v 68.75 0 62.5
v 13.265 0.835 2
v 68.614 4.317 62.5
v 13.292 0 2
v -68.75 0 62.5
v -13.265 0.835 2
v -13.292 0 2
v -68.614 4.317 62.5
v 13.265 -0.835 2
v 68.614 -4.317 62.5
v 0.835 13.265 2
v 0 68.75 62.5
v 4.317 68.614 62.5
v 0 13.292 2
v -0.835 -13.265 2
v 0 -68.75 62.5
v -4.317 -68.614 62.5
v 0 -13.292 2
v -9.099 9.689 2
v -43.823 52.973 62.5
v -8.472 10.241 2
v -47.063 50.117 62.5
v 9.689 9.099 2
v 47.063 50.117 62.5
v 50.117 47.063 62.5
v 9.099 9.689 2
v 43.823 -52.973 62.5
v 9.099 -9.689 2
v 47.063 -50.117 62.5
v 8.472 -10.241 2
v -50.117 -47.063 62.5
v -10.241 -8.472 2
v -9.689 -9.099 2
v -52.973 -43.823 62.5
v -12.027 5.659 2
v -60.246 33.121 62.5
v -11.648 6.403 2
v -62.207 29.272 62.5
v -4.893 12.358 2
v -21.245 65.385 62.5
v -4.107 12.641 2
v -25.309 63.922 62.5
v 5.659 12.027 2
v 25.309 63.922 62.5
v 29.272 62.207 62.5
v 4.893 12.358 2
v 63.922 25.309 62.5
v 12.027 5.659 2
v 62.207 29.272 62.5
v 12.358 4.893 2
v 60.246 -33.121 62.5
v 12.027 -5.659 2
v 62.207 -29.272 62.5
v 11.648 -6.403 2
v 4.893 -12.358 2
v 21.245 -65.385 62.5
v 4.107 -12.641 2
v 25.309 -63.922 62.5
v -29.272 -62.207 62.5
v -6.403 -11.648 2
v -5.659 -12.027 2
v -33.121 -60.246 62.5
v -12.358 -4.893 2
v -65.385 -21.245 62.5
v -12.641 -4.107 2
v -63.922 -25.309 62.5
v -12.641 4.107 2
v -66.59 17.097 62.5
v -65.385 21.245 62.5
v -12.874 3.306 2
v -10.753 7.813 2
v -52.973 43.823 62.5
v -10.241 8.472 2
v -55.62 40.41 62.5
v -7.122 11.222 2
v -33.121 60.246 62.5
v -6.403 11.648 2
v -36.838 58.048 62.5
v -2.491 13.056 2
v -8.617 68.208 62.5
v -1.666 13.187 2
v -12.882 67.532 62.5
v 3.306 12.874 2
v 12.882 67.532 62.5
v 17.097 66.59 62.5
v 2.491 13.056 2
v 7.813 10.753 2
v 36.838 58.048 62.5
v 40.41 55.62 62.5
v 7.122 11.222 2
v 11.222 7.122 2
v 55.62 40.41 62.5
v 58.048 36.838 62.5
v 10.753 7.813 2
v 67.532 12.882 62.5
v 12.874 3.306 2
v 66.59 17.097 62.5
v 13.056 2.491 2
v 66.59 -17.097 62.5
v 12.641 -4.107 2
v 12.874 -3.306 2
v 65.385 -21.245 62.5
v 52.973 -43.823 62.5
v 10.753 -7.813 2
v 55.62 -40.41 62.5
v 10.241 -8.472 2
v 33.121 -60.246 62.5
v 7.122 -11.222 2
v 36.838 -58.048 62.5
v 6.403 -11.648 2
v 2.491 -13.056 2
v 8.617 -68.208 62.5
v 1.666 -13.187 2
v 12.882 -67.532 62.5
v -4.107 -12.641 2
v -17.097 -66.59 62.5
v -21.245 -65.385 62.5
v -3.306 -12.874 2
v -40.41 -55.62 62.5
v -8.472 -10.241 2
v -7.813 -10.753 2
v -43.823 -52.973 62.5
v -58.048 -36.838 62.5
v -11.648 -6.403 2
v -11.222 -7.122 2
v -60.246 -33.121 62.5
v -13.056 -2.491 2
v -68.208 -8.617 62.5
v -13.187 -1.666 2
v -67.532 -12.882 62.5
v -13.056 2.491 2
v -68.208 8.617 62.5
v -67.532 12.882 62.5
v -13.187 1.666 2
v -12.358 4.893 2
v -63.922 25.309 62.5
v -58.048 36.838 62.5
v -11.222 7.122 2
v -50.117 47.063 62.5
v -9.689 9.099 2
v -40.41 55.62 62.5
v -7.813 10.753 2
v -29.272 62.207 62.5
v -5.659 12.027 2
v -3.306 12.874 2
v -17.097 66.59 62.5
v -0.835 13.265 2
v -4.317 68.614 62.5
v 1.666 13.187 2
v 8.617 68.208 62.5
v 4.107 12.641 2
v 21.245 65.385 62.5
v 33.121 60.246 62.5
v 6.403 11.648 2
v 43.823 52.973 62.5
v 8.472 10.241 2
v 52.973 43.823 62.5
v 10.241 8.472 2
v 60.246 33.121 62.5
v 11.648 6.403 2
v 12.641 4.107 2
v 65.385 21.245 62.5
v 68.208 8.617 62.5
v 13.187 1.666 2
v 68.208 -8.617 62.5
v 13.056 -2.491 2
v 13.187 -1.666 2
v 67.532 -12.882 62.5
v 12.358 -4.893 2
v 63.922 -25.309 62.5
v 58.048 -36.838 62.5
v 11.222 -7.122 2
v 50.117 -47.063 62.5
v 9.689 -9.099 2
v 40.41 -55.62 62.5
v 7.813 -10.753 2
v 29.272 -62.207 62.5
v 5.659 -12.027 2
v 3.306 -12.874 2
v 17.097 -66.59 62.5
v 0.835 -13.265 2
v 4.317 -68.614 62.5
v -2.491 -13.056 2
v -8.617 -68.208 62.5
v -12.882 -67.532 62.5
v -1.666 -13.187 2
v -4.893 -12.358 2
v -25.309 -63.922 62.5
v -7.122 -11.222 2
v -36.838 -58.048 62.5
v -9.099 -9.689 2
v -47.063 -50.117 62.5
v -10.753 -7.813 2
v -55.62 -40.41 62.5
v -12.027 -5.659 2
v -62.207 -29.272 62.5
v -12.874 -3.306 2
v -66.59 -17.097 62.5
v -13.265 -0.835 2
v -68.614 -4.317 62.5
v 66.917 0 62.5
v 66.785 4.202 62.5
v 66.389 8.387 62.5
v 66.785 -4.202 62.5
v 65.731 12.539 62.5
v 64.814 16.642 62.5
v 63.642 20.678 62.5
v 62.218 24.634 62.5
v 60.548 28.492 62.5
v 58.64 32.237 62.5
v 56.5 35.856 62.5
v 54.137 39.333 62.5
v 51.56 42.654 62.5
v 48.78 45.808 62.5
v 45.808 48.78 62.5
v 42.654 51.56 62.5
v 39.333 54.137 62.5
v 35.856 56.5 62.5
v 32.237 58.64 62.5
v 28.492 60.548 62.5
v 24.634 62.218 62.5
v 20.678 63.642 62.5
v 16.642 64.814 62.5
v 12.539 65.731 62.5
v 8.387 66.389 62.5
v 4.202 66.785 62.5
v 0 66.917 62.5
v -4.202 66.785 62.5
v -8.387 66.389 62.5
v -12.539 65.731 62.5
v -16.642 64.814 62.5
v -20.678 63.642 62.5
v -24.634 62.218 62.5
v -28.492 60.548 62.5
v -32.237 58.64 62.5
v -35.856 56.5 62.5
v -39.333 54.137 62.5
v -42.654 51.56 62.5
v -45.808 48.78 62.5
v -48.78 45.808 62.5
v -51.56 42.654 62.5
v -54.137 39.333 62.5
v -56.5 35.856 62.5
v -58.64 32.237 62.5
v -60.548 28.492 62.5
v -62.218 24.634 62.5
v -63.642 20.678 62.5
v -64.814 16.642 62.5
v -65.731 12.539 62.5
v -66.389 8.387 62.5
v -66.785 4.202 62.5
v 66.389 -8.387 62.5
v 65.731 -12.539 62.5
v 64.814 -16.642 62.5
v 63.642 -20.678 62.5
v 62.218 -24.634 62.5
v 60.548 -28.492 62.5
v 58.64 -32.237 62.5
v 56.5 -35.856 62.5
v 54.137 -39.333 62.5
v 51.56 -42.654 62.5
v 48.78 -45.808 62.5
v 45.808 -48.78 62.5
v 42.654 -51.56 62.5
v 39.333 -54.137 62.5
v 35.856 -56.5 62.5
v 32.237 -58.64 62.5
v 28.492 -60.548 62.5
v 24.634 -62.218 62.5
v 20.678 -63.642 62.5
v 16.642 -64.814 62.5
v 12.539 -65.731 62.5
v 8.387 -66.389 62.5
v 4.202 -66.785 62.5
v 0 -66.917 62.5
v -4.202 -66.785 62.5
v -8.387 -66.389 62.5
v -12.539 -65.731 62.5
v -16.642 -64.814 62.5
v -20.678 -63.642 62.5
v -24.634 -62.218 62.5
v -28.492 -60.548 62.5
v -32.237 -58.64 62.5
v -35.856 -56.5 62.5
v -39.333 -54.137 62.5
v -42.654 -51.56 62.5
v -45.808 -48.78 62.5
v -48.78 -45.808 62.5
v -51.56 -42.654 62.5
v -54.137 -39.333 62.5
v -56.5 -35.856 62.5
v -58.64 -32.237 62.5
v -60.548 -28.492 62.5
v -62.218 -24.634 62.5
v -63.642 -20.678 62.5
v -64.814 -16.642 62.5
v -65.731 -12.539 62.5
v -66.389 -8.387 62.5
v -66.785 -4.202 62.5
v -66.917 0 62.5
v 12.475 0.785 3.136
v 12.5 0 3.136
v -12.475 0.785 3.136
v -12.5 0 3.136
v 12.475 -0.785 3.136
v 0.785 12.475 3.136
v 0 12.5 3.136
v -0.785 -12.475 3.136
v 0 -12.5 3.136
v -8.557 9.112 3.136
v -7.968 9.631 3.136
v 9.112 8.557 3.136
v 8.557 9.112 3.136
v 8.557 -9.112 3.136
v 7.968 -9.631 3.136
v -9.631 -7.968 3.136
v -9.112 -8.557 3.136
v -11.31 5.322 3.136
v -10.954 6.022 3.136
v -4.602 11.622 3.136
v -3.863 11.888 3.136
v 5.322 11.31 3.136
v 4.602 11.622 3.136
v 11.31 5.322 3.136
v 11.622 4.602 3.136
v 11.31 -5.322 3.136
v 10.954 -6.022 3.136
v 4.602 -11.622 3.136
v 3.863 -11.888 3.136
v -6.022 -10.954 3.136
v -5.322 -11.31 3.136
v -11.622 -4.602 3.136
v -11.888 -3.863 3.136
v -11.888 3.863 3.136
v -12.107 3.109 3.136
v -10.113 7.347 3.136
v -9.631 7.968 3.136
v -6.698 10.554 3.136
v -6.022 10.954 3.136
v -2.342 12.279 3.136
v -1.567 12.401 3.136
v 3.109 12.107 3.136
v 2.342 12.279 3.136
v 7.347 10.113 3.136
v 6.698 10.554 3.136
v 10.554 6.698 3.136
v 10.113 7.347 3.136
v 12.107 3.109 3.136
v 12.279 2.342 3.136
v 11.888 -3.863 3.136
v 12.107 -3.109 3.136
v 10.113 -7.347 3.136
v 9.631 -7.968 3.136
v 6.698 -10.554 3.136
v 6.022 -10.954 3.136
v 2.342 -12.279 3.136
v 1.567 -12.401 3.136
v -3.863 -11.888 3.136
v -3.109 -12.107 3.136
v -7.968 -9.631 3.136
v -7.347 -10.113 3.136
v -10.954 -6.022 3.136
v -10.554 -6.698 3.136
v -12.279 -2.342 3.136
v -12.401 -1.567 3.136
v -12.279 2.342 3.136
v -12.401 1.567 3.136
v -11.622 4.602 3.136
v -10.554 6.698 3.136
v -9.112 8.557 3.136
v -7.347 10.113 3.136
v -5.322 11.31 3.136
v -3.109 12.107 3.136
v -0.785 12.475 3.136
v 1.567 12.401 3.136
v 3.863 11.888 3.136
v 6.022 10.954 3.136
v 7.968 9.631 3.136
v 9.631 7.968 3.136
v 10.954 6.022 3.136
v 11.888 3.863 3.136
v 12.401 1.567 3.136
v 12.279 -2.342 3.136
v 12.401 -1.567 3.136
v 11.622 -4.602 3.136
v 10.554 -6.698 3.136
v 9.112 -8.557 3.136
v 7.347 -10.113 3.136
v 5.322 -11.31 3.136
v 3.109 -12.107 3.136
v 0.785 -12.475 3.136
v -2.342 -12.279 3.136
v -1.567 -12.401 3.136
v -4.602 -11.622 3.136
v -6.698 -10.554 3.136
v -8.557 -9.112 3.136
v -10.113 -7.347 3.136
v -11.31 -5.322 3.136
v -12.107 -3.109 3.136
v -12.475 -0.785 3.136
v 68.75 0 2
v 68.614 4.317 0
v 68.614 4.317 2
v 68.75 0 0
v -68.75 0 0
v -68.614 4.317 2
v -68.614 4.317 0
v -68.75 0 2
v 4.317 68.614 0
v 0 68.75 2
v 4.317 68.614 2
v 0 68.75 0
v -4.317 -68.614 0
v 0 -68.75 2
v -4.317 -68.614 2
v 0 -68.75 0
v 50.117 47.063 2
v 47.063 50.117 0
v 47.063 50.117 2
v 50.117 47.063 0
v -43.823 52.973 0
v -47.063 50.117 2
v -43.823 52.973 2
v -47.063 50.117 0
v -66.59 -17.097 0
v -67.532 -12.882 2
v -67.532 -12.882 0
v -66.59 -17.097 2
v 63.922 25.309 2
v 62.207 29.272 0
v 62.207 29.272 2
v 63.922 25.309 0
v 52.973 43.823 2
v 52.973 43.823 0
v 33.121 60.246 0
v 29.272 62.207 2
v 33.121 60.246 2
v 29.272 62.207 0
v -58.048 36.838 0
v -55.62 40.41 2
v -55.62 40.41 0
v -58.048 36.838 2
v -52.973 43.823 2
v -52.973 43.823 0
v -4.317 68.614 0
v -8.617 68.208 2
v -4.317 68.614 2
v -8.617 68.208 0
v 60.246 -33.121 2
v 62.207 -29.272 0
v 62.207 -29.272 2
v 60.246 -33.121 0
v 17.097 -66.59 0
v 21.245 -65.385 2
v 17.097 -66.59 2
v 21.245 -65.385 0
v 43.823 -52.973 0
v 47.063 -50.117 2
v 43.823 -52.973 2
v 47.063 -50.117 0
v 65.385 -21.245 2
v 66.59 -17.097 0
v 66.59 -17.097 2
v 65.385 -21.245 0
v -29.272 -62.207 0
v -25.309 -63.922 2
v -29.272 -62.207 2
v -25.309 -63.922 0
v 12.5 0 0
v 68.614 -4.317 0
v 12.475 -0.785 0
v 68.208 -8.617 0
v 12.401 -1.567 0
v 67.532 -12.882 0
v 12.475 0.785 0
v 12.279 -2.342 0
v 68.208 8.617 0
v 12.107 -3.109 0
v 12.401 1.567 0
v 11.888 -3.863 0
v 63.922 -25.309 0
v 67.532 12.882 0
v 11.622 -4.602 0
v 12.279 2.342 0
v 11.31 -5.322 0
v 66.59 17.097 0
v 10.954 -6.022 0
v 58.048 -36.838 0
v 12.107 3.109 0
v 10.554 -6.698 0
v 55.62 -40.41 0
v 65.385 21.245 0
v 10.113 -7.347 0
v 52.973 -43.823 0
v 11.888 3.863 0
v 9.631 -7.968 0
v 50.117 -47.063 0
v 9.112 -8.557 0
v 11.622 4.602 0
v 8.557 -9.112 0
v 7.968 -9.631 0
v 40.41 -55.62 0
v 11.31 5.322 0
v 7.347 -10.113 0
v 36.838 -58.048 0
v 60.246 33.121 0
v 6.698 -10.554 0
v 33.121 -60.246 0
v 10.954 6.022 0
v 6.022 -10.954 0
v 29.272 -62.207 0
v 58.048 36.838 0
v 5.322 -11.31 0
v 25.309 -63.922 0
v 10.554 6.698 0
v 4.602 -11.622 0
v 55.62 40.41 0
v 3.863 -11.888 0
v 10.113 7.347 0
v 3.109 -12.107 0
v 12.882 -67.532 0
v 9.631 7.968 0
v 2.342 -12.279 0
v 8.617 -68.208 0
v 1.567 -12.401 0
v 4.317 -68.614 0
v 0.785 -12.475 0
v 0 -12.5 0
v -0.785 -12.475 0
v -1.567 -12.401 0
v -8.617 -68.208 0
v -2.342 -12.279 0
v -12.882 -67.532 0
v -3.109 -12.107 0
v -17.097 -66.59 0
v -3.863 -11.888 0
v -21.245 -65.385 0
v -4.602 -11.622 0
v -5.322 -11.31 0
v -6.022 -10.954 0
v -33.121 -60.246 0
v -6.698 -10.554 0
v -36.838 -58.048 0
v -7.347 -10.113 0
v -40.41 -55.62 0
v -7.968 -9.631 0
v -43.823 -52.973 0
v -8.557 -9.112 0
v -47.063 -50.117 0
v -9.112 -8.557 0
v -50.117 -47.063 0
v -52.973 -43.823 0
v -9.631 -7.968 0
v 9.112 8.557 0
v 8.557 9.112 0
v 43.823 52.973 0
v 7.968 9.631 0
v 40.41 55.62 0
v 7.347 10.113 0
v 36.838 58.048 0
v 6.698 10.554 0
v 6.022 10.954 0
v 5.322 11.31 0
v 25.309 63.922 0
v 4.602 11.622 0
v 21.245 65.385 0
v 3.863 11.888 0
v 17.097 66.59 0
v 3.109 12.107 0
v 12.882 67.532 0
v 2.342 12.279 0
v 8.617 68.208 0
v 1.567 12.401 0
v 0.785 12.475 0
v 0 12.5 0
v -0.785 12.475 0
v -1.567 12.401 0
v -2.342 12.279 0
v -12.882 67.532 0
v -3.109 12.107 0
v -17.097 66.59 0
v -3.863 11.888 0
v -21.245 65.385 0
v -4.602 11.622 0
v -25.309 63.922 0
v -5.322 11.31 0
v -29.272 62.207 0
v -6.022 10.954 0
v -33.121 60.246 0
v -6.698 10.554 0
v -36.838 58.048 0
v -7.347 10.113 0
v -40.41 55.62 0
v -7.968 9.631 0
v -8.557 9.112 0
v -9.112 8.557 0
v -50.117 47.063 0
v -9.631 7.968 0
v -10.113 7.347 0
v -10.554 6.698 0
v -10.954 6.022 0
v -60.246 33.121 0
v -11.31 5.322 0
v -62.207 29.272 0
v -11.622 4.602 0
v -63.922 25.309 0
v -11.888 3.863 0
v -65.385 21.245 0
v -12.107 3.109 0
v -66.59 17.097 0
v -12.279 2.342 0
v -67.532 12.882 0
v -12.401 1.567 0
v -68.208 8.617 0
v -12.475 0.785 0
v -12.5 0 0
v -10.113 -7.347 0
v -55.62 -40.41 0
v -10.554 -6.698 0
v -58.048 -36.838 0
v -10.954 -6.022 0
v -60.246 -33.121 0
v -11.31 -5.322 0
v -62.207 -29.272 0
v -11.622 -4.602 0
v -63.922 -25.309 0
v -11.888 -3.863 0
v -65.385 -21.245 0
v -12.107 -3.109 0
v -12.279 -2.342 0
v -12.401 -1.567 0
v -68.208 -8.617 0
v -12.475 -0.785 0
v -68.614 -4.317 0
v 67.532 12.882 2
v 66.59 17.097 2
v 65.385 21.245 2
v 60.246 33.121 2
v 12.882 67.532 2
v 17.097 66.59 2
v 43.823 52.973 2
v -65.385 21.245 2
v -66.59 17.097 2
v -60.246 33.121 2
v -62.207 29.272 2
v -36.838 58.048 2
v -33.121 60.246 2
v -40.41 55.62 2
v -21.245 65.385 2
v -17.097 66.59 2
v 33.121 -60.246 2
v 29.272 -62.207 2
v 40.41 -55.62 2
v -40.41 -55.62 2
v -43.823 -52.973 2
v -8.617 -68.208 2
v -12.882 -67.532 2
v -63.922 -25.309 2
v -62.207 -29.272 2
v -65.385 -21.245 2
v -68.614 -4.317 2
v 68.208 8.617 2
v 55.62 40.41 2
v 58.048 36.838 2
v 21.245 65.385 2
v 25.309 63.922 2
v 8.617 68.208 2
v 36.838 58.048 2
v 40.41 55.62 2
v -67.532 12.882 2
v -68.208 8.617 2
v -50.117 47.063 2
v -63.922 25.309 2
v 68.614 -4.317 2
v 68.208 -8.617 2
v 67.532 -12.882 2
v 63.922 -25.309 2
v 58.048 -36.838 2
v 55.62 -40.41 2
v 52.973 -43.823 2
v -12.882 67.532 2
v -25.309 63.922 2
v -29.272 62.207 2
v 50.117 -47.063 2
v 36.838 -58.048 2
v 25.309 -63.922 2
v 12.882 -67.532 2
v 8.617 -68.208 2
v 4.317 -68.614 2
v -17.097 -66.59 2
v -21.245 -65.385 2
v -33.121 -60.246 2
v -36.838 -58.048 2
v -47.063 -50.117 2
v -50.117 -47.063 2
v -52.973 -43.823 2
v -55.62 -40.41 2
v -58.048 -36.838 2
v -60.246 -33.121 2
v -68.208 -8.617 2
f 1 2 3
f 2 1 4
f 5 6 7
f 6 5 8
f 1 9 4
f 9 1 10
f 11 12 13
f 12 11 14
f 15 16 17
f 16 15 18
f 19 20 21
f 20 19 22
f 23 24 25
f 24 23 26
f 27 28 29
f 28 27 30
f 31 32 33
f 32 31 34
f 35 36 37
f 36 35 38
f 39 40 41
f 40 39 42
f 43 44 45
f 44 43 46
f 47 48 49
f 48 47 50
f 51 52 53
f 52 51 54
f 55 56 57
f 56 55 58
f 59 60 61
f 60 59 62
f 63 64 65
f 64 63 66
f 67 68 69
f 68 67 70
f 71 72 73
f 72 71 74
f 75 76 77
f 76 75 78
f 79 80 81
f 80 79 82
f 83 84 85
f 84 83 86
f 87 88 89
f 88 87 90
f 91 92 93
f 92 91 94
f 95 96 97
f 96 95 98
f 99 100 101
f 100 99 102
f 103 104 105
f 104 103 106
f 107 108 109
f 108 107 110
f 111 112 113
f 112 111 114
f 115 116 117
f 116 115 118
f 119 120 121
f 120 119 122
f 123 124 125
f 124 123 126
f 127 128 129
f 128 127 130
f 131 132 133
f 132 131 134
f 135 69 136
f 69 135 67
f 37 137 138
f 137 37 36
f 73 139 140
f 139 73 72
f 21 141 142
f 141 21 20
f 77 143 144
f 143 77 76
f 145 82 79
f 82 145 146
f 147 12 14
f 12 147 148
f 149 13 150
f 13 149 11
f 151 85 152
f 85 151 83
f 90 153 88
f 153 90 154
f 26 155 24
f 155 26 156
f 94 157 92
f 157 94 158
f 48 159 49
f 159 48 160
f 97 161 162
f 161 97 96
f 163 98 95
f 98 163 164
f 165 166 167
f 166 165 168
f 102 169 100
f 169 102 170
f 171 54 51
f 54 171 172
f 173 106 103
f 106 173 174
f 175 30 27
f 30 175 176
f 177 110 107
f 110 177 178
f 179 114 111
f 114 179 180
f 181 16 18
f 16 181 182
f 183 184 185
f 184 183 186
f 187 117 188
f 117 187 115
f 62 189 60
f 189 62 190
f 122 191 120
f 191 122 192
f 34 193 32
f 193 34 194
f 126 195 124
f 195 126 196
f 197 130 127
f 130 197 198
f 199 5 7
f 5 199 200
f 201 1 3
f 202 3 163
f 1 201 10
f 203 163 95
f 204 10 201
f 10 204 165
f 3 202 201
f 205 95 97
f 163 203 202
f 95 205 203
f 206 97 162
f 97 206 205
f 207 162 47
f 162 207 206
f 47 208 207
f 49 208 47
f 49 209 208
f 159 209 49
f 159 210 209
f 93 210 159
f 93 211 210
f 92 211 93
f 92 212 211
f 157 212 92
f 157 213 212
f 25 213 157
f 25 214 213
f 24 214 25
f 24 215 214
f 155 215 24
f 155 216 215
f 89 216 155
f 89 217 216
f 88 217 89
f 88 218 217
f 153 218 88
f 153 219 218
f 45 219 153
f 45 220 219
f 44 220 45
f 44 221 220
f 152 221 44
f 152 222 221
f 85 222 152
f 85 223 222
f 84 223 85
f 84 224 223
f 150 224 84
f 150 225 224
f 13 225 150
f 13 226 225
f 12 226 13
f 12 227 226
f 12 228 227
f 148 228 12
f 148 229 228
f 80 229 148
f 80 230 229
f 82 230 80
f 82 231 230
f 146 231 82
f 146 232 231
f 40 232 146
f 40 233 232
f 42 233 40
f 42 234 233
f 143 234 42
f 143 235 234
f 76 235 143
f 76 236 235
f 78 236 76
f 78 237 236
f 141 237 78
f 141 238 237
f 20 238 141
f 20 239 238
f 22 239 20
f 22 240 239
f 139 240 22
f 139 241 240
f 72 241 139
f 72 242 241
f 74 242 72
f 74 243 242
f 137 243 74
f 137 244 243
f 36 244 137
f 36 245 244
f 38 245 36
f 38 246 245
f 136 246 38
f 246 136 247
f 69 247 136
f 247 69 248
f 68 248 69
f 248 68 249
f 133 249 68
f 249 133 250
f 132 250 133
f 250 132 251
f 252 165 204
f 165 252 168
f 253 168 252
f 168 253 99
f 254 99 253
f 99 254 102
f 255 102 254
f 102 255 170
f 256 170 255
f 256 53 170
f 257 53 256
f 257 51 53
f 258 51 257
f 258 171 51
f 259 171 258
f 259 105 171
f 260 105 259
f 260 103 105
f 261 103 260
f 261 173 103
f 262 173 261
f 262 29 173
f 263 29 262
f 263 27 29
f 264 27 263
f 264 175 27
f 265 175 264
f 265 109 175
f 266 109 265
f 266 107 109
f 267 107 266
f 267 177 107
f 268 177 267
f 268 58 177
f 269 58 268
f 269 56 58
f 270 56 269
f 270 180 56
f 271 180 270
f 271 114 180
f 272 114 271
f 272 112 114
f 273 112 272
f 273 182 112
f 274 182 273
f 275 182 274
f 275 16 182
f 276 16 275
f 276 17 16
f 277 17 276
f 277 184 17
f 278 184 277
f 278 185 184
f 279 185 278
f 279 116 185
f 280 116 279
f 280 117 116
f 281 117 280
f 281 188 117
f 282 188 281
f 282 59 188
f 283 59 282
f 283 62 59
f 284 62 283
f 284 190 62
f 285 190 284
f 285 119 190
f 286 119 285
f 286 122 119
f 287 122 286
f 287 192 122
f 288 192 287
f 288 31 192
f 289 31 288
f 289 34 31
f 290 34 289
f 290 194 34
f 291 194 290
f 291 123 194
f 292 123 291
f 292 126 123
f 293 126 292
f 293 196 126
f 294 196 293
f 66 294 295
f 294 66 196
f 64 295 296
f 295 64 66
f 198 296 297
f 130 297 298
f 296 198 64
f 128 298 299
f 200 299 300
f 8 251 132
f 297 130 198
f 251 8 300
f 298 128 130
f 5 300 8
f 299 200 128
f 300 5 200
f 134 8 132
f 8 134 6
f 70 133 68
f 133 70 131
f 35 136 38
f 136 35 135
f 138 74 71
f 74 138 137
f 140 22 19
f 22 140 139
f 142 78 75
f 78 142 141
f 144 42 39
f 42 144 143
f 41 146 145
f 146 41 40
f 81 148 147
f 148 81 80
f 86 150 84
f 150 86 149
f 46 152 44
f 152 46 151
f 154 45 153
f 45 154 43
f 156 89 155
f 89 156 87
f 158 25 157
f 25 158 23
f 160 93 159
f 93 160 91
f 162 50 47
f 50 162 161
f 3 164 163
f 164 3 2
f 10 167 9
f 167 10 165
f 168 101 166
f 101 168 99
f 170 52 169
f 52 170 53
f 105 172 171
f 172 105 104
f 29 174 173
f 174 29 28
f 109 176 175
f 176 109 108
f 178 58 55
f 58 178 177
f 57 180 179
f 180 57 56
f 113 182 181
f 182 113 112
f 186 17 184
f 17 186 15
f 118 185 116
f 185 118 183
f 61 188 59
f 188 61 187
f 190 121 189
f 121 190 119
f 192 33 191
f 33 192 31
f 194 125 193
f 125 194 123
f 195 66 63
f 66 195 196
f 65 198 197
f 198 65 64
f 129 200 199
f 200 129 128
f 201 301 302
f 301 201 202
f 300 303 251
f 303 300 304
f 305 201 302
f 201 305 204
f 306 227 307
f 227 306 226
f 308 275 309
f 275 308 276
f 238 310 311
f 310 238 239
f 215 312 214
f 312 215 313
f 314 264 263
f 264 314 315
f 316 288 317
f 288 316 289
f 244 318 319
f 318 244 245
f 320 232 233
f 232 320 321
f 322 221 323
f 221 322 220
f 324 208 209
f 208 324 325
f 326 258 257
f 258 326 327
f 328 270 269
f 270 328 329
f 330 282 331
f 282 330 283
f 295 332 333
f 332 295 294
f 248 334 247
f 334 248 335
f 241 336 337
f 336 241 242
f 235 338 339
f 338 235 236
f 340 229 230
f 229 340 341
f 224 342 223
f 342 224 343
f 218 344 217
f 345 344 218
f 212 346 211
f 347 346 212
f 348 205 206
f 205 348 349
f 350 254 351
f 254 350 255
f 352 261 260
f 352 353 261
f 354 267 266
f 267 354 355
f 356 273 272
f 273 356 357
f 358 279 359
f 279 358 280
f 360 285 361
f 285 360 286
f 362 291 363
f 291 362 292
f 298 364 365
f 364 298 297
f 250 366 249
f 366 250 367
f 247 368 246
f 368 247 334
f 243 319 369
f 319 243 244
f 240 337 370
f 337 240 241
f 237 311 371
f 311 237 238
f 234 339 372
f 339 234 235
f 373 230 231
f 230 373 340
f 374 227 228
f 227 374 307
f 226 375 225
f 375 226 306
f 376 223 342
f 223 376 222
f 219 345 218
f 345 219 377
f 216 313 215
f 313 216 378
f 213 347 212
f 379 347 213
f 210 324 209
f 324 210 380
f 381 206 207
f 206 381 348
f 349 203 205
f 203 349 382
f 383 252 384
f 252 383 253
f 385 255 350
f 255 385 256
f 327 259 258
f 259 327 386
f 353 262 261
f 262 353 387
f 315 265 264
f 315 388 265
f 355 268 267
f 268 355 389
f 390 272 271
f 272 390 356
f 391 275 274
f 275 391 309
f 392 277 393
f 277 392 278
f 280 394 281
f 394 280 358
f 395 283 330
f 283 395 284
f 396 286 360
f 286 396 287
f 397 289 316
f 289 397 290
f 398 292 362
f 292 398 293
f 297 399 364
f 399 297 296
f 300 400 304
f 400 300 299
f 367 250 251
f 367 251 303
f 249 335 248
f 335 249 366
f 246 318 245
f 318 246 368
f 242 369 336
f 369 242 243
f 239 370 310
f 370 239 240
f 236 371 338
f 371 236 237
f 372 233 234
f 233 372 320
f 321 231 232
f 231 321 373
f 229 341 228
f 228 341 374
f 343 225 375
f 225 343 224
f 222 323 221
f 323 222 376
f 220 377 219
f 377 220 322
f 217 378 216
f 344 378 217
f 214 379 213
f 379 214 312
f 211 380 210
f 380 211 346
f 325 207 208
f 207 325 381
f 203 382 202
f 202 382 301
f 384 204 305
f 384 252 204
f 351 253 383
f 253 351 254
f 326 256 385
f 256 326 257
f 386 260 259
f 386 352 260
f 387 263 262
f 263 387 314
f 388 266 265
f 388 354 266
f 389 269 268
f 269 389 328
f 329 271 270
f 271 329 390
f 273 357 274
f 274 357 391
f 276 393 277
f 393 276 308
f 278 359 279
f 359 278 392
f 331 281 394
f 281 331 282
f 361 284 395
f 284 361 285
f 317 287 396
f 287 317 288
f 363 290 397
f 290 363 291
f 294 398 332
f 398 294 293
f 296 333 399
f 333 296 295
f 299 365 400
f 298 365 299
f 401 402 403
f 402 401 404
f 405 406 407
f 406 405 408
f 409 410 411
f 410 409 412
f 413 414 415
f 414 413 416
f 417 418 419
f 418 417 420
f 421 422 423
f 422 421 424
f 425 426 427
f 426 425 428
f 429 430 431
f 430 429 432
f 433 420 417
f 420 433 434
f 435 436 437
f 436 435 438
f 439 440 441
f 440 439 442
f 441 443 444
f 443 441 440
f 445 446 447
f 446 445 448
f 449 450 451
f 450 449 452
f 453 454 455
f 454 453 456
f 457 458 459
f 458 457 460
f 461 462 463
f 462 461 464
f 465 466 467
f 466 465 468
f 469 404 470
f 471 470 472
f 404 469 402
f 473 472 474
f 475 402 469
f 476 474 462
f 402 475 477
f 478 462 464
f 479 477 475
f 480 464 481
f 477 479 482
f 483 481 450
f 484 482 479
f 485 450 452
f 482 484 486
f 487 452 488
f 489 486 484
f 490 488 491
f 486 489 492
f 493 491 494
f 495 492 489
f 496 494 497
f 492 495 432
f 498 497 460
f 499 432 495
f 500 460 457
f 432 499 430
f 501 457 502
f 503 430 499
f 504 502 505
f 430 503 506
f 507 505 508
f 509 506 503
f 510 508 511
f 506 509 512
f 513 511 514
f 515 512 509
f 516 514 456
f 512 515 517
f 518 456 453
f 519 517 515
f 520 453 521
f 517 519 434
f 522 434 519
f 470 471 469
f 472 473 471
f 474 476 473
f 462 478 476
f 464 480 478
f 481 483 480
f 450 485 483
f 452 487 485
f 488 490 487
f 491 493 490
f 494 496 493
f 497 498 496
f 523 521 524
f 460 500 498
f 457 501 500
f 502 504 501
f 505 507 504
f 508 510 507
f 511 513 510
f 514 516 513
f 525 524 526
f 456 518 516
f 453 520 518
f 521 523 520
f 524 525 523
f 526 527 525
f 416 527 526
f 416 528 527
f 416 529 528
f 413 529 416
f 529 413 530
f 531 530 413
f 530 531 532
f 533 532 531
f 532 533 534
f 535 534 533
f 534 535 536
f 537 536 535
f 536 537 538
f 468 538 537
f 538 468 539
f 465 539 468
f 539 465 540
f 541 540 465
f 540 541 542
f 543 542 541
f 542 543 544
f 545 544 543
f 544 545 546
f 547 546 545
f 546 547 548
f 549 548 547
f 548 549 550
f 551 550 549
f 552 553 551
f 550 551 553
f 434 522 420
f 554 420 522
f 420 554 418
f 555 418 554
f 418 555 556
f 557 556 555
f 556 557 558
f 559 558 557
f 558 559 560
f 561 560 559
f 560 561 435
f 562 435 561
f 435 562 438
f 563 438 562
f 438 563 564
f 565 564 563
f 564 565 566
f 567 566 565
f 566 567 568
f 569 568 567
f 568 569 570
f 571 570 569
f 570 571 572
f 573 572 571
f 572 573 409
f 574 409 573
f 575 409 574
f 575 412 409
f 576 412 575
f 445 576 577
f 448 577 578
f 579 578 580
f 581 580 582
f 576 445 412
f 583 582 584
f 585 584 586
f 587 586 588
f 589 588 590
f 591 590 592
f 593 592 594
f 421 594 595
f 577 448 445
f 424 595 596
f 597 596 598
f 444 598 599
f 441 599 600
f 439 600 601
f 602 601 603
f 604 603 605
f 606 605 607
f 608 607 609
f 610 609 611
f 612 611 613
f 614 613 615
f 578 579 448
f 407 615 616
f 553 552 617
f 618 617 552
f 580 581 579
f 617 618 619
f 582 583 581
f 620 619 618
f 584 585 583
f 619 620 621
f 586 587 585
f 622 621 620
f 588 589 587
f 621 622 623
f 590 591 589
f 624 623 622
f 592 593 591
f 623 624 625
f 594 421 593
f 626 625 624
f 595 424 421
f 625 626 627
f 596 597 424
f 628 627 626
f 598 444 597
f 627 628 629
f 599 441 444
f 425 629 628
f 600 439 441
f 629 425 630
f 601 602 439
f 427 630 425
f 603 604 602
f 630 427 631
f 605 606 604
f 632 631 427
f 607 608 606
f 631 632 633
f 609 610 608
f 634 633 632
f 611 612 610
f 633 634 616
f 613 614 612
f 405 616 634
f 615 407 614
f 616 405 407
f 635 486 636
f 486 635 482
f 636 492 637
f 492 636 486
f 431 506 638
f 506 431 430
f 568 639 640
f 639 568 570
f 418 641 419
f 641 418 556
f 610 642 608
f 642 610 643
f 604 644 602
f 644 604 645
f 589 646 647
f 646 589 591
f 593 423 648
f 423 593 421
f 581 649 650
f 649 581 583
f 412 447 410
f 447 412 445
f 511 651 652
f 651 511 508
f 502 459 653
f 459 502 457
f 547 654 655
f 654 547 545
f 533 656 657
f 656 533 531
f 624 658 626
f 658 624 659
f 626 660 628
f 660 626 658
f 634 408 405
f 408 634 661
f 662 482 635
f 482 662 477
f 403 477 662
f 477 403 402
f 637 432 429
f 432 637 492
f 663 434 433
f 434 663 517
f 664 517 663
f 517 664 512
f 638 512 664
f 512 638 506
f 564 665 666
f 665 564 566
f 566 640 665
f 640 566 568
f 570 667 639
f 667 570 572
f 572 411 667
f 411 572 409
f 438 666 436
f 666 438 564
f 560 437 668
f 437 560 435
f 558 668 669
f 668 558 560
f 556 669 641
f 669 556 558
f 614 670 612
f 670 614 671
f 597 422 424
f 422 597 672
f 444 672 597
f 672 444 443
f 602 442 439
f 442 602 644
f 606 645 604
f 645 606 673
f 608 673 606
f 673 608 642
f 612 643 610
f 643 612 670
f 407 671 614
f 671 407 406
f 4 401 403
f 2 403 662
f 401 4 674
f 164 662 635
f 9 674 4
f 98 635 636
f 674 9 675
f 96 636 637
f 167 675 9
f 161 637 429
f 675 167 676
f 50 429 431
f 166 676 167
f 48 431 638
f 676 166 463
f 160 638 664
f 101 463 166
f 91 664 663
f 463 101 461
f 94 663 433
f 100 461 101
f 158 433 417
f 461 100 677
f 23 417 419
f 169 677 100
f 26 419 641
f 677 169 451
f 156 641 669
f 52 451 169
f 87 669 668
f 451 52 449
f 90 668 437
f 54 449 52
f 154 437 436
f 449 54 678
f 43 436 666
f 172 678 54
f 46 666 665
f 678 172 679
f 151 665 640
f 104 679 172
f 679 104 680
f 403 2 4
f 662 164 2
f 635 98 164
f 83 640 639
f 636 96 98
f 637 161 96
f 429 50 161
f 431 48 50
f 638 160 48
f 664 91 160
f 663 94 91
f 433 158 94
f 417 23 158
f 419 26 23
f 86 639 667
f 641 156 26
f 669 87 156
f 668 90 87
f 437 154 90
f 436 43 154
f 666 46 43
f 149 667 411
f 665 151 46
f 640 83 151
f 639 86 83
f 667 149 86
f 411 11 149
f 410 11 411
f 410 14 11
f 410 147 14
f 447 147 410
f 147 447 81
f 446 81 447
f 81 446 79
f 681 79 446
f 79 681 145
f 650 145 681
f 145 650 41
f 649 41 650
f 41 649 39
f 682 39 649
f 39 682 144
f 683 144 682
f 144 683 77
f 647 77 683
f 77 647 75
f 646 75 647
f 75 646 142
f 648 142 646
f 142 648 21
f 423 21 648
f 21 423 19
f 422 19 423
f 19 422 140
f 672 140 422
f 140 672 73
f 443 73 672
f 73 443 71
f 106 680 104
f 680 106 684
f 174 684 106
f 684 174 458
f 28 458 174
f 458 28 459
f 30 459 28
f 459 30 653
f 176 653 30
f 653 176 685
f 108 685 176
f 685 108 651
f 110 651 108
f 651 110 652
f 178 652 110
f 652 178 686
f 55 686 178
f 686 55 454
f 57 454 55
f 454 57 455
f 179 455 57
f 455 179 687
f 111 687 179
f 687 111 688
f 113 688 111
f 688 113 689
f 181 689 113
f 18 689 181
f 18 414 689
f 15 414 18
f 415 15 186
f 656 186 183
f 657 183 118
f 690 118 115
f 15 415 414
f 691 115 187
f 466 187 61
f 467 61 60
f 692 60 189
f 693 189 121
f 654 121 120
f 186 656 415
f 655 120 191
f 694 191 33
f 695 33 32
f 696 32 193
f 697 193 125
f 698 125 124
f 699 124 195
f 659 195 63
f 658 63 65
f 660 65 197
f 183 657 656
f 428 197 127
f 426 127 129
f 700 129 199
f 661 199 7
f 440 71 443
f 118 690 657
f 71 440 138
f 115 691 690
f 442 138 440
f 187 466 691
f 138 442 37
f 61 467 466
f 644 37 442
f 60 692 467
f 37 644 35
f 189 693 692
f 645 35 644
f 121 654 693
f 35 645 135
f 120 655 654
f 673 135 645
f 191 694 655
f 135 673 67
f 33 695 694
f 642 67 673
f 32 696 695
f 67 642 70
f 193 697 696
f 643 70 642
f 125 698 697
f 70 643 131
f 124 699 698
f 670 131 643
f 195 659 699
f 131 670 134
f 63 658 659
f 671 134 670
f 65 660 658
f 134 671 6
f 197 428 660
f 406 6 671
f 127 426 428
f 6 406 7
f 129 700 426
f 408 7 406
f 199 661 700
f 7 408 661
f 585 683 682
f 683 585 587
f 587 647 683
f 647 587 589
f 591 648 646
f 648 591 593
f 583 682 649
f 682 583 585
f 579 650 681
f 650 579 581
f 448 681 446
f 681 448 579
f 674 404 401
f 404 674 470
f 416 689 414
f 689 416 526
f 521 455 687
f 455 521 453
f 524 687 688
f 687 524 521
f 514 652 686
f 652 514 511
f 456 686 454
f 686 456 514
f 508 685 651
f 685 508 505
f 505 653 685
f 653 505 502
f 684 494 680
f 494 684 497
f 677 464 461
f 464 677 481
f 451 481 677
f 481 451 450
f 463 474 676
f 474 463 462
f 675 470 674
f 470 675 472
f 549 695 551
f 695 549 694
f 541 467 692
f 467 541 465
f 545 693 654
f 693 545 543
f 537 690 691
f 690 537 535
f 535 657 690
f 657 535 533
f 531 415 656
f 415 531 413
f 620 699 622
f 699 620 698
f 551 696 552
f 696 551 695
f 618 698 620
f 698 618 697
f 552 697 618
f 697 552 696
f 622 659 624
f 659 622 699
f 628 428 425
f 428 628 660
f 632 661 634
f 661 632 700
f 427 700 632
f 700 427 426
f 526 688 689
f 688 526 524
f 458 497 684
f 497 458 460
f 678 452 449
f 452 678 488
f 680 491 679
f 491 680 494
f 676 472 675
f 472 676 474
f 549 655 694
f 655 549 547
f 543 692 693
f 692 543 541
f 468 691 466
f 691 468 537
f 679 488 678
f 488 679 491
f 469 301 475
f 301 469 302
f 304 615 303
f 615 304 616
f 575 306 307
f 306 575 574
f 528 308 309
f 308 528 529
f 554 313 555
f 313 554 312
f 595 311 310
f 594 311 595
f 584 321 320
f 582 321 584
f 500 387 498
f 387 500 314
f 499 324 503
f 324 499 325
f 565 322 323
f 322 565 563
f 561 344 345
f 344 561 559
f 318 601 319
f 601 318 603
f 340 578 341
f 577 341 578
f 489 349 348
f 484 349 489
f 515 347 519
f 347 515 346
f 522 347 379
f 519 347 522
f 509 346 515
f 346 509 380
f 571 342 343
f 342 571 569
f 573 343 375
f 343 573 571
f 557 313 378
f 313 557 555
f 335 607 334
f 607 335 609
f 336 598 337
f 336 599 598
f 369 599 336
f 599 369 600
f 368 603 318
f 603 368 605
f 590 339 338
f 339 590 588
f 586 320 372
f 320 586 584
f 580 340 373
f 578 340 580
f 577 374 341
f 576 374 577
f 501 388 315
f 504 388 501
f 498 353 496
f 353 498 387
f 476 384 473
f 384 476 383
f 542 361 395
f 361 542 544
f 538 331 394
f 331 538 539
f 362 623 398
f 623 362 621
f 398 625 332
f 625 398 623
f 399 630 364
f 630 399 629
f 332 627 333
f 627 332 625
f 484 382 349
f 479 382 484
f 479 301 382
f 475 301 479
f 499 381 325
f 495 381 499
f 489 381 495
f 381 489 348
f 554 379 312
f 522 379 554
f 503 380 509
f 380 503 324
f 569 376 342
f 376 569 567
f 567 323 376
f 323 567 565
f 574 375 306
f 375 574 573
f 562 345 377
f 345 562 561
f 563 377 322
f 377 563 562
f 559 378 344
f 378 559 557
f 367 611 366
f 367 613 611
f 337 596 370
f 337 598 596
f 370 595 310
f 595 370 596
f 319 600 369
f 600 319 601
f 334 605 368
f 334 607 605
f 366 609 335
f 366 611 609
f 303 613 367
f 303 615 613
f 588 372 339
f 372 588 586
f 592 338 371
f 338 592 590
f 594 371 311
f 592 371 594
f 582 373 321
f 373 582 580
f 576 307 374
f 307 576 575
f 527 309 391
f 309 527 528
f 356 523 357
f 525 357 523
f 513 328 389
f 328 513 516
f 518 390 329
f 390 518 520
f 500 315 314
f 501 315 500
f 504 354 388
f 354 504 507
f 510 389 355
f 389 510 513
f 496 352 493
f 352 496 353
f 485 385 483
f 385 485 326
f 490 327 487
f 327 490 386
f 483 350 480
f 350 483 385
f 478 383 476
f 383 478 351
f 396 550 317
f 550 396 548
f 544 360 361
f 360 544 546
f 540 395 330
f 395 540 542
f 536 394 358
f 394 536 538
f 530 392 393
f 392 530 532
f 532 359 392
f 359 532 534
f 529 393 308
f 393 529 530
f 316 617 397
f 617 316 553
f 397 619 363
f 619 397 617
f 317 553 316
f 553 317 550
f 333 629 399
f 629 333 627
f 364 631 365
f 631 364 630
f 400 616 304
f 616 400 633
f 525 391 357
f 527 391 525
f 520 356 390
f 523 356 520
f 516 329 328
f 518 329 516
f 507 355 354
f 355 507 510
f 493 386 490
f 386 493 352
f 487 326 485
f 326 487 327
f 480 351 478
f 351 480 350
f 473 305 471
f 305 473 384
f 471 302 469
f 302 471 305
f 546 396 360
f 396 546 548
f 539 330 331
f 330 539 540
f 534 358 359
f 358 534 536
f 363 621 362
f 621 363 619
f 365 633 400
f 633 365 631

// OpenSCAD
partThickness=2;
cupDia=125;
funnelHeight=75;
$fn=100;

difference(){
union(){
cylinder(h=partThickness, d1=cupDia+12.5,d2=cupDia+12.5);

translate([0,0,-12.5])
difference(){
cylinder(h=funnelHeight, d1=0,d2=cupDia+12.5);
    translate([0,0,partThickness])
    cylinder(h=funnelHeight, d1=0,d2=cupDia+12.5);
}
}
translate([0,0,-25])
cylinder(h=150, d1=25,d2=25);
}
